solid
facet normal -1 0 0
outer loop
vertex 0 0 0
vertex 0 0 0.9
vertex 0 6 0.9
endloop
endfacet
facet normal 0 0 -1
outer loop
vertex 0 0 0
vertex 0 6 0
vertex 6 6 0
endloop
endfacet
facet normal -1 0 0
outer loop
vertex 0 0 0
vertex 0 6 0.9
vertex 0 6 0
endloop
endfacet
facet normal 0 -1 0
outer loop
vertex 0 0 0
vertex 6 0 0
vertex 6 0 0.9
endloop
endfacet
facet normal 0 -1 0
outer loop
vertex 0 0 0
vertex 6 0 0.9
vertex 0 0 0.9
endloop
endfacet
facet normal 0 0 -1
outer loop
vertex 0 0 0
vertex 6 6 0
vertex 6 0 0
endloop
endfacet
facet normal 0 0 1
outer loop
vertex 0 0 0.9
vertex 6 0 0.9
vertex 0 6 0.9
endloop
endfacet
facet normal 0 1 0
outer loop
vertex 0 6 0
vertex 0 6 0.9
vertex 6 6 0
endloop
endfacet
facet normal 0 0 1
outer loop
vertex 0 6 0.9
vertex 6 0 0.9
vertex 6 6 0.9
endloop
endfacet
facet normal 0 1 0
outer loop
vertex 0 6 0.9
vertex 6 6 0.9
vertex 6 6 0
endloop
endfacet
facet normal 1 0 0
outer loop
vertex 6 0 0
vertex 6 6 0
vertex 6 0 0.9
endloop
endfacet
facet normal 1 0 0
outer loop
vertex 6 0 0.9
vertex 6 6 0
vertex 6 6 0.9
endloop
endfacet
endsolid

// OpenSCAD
/* Warning, this is a very basic generator with a lot of approximation 
input data : [VQFN, KYX, 6x6x0.9mm, 40, , A, C04-00473A]
generated by com.zoubworld.electronics.cad.model3d.Basic
Date : Sun Feb 15 10:50:48 CET 2026
*/

//body
color("black")
translate([0,0,0])
cube([6.0,6.0,0.9], center=false);
